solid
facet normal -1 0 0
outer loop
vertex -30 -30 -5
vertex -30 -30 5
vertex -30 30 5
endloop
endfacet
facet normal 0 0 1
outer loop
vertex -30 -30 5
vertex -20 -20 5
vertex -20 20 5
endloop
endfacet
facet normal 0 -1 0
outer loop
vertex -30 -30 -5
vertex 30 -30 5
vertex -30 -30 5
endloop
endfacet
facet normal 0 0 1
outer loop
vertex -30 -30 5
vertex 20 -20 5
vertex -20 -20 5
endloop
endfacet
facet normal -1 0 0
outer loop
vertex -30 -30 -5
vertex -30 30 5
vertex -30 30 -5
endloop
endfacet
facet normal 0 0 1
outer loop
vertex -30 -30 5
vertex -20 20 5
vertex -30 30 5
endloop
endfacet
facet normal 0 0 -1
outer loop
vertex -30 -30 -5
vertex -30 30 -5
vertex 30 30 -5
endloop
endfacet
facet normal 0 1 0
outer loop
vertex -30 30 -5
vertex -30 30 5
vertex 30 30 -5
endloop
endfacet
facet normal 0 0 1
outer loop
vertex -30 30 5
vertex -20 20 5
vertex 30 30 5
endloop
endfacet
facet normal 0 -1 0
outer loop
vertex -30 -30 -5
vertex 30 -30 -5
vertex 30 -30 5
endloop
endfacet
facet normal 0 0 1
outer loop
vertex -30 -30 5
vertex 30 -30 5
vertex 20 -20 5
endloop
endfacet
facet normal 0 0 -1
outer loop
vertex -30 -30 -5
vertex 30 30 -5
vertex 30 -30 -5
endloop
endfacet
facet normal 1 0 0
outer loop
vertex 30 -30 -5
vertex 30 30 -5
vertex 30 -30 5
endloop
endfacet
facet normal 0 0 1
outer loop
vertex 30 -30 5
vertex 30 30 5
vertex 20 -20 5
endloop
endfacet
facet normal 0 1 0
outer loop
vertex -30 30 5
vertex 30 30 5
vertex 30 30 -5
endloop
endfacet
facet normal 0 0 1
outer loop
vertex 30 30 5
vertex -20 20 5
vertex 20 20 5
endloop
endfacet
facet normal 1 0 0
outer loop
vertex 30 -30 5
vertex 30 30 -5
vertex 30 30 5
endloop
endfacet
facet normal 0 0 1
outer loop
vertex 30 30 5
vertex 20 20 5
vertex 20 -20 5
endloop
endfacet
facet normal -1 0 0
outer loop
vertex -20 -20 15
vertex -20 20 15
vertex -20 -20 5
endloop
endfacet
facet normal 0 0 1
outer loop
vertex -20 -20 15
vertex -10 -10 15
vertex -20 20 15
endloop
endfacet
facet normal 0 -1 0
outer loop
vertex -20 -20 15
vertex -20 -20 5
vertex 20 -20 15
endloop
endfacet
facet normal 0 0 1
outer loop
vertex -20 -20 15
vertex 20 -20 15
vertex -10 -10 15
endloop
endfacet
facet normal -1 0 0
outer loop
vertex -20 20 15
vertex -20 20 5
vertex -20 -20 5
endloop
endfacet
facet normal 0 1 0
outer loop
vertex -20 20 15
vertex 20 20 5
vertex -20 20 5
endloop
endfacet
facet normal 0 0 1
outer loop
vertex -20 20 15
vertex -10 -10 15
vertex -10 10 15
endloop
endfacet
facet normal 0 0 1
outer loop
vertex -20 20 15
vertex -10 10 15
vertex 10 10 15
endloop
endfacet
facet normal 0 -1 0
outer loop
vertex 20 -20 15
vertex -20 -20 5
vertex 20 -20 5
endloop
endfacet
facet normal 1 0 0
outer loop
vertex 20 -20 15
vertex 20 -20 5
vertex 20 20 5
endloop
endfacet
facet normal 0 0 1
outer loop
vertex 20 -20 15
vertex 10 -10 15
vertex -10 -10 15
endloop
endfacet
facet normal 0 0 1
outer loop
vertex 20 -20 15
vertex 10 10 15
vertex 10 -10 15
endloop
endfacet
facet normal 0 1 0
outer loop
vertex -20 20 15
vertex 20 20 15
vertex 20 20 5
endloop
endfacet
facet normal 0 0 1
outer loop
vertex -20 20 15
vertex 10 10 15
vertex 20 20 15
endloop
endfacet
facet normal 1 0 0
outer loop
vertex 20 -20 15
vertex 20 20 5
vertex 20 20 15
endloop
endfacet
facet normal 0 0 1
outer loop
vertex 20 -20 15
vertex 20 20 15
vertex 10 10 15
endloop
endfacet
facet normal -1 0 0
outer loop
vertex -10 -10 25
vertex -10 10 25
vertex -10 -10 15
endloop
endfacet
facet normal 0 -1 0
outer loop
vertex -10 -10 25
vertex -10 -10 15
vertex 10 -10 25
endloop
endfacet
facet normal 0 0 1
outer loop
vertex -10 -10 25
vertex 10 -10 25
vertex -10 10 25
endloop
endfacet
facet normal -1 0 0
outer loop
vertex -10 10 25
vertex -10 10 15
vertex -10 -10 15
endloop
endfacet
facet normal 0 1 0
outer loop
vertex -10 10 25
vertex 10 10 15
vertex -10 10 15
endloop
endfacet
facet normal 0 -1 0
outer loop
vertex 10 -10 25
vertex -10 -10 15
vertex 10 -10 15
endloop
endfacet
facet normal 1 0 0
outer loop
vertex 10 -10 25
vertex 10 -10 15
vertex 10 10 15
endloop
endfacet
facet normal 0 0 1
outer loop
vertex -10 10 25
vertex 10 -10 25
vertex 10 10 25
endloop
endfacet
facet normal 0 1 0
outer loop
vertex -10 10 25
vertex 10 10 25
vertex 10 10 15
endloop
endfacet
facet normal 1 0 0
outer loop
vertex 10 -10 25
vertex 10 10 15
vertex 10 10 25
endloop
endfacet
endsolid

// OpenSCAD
union() {
    cube([60, 60, 10], center = true);

    translate([0, 0, 10])
        cube([40, 40, 10], center = true);

    translate([0, 0, 20])
        cube([20, 20, 10], center = true);
}
